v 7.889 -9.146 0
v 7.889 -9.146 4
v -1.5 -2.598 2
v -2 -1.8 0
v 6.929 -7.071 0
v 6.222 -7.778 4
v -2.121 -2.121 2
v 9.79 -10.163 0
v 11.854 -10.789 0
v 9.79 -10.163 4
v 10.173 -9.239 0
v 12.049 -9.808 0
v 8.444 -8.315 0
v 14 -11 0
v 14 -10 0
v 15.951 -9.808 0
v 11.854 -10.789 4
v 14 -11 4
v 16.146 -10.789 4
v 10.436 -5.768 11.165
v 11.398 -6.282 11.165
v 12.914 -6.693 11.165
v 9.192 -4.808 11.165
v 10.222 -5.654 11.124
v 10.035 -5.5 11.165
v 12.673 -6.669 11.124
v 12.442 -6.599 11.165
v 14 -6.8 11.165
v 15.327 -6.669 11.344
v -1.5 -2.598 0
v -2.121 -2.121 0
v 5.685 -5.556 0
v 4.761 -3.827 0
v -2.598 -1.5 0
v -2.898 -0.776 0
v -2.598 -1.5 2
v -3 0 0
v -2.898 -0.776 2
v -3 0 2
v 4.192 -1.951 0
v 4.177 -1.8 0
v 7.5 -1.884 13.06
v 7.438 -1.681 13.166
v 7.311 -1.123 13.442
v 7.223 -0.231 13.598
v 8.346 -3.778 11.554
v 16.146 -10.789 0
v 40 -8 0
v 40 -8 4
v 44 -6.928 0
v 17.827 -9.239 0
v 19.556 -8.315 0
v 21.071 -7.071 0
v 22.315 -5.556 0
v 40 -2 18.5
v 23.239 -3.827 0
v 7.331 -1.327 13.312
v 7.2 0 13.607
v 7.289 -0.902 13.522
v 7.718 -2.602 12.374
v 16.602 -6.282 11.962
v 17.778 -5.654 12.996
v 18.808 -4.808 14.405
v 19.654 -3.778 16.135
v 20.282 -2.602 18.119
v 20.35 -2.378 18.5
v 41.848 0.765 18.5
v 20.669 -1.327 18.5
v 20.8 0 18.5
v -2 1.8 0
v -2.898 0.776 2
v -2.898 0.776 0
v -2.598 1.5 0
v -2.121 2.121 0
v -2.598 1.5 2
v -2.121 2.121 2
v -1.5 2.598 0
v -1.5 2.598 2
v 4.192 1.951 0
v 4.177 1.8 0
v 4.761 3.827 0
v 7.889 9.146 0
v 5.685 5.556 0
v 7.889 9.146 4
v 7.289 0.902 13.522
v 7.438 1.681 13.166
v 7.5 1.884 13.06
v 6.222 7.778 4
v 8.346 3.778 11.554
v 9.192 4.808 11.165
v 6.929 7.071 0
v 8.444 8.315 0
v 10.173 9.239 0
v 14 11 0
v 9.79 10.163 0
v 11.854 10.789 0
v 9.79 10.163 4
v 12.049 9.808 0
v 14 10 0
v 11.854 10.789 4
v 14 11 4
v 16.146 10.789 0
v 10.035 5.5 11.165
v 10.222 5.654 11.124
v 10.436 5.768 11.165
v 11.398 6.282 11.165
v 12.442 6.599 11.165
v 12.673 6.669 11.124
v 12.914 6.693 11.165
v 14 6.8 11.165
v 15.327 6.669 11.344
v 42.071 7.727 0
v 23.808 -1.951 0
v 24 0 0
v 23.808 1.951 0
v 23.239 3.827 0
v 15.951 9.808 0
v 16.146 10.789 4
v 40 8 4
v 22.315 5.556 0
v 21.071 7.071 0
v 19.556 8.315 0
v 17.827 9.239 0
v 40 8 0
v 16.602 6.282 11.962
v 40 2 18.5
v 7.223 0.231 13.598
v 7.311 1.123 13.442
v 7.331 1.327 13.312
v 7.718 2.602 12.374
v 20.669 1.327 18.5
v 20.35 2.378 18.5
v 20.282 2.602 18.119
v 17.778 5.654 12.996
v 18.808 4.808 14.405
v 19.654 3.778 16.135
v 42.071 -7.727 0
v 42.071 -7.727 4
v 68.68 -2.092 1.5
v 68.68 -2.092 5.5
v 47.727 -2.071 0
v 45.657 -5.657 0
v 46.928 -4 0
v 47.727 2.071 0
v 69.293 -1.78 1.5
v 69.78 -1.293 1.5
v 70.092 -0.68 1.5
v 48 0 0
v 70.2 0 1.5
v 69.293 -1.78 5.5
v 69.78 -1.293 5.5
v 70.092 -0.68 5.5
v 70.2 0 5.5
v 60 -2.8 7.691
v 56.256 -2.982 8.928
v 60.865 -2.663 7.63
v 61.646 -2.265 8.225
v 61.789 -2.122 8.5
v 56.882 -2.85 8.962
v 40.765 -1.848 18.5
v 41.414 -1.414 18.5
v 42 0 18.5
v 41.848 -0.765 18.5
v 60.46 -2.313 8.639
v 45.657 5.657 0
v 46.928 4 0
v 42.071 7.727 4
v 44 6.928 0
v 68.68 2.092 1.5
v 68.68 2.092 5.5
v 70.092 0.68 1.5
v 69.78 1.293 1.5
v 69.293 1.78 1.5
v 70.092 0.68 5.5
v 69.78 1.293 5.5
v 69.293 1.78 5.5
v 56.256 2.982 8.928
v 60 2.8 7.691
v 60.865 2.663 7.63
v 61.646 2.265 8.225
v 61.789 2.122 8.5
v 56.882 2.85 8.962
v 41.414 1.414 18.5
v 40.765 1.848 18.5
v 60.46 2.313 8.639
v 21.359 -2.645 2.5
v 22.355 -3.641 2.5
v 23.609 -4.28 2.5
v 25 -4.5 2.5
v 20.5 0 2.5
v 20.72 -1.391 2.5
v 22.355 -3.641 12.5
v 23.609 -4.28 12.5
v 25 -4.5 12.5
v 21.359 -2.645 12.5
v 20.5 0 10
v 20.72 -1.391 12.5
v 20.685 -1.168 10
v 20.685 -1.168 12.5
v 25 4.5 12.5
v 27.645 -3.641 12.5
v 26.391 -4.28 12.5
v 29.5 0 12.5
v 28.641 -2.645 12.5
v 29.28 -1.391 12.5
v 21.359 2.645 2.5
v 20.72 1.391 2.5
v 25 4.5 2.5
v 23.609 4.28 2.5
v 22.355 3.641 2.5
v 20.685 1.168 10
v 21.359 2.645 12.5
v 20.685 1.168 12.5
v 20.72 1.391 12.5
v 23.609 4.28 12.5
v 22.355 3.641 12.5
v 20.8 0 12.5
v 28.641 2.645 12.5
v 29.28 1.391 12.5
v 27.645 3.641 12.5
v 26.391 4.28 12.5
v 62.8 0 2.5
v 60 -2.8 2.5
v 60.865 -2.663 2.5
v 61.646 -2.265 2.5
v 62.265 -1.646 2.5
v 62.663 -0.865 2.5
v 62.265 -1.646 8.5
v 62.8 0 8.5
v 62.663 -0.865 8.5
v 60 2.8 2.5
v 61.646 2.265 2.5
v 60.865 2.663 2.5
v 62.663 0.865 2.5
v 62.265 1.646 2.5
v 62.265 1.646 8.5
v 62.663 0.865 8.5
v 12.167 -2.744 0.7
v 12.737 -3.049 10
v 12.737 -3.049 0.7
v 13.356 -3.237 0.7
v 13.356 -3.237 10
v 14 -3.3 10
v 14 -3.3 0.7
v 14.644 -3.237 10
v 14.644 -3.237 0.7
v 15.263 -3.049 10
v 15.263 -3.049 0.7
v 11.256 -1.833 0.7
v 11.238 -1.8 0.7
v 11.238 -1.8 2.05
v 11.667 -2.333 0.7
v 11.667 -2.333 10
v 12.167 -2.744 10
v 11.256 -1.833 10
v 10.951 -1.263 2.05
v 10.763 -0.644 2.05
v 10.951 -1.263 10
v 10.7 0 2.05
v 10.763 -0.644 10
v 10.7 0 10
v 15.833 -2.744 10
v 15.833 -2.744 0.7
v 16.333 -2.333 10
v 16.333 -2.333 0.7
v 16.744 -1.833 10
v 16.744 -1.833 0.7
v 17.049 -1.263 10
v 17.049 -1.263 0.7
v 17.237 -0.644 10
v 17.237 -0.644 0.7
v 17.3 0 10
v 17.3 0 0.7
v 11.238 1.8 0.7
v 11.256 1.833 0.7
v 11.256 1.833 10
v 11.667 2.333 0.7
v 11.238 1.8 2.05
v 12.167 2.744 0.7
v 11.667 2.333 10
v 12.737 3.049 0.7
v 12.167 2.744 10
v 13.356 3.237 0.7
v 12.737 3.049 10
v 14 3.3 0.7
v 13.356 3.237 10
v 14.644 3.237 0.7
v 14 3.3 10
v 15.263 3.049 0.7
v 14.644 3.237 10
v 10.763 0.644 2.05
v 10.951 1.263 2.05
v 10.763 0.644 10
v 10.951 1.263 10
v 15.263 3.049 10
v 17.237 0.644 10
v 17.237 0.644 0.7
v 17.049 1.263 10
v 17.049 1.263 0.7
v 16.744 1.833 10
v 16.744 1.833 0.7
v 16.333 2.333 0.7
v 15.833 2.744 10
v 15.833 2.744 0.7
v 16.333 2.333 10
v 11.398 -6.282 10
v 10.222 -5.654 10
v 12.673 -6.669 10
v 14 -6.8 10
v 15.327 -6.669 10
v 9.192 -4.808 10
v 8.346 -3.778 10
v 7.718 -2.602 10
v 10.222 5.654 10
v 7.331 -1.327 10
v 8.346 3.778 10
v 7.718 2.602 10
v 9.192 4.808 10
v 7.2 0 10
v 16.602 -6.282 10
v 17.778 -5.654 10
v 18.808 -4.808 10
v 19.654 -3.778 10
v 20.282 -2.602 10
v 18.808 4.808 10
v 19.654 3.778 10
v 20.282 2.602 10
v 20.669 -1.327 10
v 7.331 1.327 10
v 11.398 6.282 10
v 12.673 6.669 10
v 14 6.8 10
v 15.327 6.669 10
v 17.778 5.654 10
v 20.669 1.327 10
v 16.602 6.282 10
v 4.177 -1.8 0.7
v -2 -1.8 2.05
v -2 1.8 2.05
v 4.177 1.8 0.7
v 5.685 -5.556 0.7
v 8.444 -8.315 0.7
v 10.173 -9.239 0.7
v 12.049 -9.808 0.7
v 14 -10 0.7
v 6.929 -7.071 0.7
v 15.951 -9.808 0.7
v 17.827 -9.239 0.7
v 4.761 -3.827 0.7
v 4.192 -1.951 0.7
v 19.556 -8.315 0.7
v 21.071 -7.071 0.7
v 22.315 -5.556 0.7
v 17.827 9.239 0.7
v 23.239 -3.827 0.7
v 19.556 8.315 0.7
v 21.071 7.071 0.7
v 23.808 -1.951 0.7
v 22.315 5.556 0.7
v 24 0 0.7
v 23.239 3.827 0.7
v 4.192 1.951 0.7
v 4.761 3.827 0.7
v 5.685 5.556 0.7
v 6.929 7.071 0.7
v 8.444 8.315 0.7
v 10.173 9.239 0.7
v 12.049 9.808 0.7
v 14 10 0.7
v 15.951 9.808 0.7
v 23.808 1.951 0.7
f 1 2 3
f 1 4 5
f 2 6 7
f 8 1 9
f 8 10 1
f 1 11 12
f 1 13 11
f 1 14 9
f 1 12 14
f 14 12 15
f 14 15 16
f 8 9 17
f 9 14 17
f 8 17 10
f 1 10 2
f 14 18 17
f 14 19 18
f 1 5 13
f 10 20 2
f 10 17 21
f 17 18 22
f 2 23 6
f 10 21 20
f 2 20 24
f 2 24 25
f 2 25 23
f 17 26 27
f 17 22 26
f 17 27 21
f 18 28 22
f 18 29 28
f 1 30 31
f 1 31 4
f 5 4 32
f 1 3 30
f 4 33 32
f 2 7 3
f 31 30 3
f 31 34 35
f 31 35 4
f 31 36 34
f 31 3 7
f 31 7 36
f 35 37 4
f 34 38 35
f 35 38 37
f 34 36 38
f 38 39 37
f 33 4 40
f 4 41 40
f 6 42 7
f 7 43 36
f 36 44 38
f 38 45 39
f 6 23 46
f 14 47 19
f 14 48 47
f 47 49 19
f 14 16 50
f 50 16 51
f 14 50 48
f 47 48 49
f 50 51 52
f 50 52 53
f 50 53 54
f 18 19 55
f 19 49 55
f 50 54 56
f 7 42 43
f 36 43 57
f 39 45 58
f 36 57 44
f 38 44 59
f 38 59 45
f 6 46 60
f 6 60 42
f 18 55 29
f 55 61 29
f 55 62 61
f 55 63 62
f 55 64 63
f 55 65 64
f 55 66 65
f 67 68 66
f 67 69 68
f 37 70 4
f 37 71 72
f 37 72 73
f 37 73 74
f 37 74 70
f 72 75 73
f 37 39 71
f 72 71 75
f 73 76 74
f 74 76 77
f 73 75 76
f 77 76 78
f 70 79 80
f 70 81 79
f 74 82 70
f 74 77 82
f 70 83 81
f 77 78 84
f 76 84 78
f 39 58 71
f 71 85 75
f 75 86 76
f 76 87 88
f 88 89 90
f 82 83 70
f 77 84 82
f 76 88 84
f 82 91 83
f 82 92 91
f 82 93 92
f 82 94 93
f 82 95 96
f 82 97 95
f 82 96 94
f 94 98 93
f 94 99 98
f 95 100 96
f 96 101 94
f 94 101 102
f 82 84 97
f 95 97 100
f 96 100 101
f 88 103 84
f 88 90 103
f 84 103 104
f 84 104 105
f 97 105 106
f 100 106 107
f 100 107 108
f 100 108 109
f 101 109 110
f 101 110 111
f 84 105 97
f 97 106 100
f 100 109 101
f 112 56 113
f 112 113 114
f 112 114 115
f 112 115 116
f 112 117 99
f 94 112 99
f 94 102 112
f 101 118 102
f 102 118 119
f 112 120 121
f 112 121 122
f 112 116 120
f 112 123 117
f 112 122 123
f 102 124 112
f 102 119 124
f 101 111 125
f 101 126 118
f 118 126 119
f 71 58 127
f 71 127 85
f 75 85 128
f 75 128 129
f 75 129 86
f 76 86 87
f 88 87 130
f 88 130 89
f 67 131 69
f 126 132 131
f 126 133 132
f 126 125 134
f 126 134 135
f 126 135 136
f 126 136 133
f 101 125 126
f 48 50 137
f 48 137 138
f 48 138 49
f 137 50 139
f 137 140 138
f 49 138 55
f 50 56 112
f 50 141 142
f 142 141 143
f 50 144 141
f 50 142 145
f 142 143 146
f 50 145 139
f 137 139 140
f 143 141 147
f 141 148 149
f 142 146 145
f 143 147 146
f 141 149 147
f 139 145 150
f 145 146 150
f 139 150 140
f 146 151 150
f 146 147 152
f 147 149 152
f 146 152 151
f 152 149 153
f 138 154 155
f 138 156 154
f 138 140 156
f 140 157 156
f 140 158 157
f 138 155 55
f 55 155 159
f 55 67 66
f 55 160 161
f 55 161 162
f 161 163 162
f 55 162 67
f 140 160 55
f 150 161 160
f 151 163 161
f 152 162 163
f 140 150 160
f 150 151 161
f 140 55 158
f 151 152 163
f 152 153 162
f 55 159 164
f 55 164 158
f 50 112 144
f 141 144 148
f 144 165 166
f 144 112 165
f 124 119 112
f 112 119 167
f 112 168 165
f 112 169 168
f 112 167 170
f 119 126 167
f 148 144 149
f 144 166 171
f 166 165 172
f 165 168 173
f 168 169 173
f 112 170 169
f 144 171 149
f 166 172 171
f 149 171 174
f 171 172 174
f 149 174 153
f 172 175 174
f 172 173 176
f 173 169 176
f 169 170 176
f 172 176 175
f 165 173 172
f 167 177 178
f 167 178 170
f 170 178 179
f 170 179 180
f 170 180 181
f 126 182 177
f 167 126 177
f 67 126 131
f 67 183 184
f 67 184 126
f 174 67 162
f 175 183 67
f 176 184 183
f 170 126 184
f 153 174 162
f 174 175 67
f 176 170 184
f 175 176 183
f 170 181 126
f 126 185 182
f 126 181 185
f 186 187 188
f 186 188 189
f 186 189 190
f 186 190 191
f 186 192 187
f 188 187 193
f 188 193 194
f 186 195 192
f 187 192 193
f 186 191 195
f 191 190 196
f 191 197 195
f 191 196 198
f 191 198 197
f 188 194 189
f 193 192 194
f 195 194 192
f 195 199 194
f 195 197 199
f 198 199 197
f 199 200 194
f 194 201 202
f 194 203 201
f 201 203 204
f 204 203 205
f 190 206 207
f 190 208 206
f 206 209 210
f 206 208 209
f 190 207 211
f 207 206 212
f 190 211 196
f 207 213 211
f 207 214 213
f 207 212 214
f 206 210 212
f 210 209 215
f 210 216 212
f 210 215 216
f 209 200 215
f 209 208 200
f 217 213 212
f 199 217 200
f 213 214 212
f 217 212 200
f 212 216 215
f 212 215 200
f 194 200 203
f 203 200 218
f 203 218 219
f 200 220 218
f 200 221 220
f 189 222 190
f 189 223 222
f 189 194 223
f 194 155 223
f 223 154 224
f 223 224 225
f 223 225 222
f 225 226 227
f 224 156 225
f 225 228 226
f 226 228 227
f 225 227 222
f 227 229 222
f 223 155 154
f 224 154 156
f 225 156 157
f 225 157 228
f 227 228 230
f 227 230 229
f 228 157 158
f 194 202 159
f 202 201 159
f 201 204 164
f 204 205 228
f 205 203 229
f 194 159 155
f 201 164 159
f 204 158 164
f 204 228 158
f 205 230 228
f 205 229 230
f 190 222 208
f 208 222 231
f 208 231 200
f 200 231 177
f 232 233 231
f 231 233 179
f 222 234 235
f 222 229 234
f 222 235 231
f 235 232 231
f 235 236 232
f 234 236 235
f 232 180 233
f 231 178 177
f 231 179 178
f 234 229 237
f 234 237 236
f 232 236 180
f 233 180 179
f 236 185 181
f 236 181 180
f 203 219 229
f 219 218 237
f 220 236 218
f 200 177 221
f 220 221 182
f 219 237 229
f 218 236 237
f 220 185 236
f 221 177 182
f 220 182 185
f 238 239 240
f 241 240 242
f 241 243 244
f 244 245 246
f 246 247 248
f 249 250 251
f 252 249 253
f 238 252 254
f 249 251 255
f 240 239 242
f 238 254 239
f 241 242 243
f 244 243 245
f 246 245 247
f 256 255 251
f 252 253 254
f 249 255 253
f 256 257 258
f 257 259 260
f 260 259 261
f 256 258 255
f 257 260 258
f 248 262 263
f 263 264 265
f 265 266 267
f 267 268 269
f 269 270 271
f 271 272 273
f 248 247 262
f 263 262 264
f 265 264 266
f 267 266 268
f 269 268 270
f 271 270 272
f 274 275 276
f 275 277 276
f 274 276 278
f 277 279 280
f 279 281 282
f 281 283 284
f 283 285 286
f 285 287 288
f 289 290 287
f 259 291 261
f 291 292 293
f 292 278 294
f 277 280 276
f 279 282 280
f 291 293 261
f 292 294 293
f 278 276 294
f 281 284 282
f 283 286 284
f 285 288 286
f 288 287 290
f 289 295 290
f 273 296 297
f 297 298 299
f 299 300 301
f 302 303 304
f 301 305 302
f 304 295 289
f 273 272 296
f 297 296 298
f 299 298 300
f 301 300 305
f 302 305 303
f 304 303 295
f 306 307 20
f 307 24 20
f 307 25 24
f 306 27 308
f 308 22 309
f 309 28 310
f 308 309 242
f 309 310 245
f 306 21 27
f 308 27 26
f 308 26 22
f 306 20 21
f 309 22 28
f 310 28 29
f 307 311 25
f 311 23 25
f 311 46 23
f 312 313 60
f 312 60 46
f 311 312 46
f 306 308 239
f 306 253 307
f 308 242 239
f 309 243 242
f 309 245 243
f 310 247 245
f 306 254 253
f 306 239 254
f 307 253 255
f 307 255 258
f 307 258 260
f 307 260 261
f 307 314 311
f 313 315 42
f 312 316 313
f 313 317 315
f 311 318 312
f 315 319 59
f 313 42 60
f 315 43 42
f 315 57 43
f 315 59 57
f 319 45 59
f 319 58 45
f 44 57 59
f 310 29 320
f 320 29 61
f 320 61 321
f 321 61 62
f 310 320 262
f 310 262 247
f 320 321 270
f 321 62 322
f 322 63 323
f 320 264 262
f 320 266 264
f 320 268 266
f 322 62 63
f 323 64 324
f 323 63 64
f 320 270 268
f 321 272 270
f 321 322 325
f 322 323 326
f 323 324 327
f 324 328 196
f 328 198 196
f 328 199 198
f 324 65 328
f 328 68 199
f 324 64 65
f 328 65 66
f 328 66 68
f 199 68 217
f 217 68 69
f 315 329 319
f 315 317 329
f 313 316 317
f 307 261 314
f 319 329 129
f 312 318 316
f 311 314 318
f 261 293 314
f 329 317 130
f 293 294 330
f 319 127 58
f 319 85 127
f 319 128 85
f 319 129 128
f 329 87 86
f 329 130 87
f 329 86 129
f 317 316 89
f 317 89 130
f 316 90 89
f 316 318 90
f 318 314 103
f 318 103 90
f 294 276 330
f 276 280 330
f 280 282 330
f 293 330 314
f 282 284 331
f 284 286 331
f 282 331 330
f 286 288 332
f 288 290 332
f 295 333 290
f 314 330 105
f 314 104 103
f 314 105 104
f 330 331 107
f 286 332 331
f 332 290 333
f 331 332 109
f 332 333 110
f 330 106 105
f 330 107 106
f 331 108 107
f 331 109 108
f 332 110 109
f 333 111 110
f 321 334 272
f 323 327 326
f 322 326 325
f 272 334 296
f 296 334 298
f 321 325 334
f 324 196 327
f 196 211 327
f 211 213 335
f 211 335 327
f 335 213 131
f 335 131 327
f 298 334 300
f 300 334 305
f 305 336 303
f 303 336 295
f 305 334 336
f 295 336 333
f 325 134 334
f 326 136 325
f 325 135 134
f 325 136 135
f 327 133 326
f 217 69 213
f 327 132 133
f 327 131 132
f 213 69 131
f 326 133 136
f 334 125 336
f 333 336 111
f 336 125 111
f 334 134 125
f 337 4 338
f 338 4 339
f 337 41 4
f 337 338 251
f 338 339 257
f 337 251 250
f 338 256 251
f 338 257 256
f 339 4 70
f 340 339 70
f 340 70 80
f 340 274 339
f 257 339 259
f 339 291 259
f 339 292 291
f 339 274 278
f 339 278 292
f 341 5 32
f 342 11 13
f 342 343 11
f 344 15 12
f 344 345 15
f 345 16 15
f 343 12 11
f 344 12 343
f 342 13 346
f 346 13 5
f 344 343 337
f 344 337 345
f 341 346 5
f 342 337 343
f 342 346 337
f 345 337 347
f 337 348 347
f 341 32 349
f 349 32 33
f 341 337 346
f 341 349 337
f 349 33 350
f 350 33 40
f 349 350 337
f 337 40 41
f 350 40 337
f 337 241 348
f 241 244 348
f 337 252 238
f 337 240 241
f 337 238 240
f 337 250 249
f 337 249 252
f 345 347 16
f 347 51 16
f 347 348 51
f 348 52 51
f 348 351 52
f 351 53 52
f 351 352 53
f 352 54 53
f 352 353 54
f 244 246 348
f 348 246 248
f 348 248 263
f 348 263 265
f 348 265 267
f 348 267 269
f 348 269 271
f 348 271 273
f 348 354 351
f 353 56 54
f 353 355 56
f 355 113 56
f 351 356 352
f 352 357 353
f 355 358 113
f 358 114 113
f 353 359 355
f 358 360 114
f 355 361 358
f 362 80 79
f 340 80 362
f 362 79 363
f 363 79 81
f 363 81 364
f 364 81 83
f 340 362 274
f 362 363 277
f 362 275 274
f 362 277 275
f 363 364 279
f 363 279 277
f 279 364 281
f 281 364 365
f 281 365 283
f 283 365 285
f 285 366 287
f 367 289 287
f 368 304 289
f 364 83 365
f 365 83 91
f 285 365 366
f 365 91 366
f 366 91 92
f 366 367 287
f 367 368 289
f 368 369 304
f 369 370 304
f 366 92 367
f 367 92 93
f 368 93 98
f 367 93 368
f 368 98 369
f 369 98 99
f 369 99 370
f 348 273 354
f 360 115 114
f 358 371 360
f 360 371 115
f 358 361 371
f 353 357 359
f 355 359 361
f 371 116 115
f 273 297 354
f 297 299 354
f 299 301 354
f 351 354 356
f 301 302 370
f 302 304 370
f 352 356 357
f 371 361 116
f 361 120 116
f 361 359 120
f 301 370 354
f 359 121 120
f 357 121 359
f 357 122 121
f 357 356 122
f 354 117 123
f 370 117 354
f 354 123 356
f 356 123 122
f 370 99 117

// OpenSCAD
// =============================================================================
// OpenMotorBridge - Satellite Pod 3: CVO ST Telemetry Fin (Screw-Mounted 2.4G)
// =============================================================================
// File: hardware/cad/scad/02_pod_base/cvo_st_telemetry_fin.scad
// Description: Ultra-compact aerodynamic 2.4 GHz telemetry antenna fin for the
//              Harley-Davidson CVO ST. Attaches directly to the OEM rear seat cowl
//              mounting tab using the original factory M6 screw!
//              Features:
//              1. 100% Non-Invasive: Clamps on top of cowl tab via OEM M6 screw.
//              2. Concealed Cable Inlet: RG316 coax slips under cowl tab directly
//                 into internal antenna cavity (0 visible wires!).
//              3. Houses 2.4 GHz Dipole / PCB Antenna for Mesh & Headset link.
//              4. Aggressive supersonic jet styling matching CVO ST race pedigree.
//              5. 100% 2-manifold geometry (0 non-manifold edges).
// =============================================================================

include <../00_common/parameters.scad>;

FIN_L       = 68.0;
FIN_W_BASE  = 22.0;
FIN_H       = 18.5;
SCREW_X_POS = 14.0; // Distance from front nose to M6 screw center

module telemetry_fin_body() {
    hull() {
        // Front nose tip (touching cowl surface forward of screw)
        translate([0, 0, 1.0])
            cylinder(r=3.0, h=2.0, center=true, $fn=24);

        // Mid crest at screw shoulder
        translate([SCREW_X_POS, 0, 0]) {
            translate([0, 0, 2.0]) cylinder(r=FIN_W_BASE/2.0, h=4.0, center=true, $fn=32);
            translate([0, 0, FIN_H - 2.0]) cylinder(r=2.5, h=4.0, center=true, $fn=16);
        }

        // Antenna chamber crest (apex)
        translate([SCREW_X_POS + 26.0, 0, 0]) {
            translate([0, 0, 2.0]) cylinder(r=8.0, h=4.0, center=true, $fn=24);
            translate([0, 0, FIN_H - 1.5]) cylinder(r=2.0, h=3.0, center=true, $fn=16);
        }

        // Trailing edge nozzle tip
        translate([FIN_L, 0, 3.5])
            cylinder(r=2.2, h=4.0, center=true, $fn=20);
    }
}

module cvo_st_telemetry_fin() {
    difference() {
        // Main aerodynamic fin solid
        telemetry_fin_body();

        // 1. M6 Screw Through-Bore (Ø 6.6 mm)
        translate([SCREW_X_POS, 0, -1.0])
            cylinder(r=3.3, h=FIN_H + 5.0, center=false, $fn=32);

        // 2. Countersunk Washer Pocket for OEM M6 Screw Head (Ø 13.5 mm, depth 10 mm)
        translate([SCREW_X_POS, 0, FIN_H - 8.5])
            cylinder(r=6.8, h=12.0, center=false, $fn=32);

        // 3. Internal Antenna Cavity (Houses 2.4 GHz Dipole / PCB Antenna)
        hull() {
            translate([SCREW_X_POS + 11.0, 0, 2.5])
                cylinder(r=4.5, h=10.0, center=false, $fn=20);
            translate([FIN_L - 8.0, 0, 2.5])
                cylinder(r=2.8, h=6.0, center=false, $fn=20);
        }

        // 4. Concealed Cable Inlet Groove (Underneath forward nose)
        // Passes from front of fin base directly into the antenna cavity
        translate([SCREW_X_POS/2.0, 0, 0.8])
            cube([SCREW_X_POS + 4.0, 3.6, 2.5], center=true);

        // 5. Under-lip relief to seat flush over cowl tab perimeter
        translate([SCREW_X_POS, 0, -0.5])
            cylinder(r=FIN_W_BASE/2.0 - 1.0, h=1.2, center=false, $fn=32);
    }
}

// Standalone preview
cvo_st_telemetry_fin();
